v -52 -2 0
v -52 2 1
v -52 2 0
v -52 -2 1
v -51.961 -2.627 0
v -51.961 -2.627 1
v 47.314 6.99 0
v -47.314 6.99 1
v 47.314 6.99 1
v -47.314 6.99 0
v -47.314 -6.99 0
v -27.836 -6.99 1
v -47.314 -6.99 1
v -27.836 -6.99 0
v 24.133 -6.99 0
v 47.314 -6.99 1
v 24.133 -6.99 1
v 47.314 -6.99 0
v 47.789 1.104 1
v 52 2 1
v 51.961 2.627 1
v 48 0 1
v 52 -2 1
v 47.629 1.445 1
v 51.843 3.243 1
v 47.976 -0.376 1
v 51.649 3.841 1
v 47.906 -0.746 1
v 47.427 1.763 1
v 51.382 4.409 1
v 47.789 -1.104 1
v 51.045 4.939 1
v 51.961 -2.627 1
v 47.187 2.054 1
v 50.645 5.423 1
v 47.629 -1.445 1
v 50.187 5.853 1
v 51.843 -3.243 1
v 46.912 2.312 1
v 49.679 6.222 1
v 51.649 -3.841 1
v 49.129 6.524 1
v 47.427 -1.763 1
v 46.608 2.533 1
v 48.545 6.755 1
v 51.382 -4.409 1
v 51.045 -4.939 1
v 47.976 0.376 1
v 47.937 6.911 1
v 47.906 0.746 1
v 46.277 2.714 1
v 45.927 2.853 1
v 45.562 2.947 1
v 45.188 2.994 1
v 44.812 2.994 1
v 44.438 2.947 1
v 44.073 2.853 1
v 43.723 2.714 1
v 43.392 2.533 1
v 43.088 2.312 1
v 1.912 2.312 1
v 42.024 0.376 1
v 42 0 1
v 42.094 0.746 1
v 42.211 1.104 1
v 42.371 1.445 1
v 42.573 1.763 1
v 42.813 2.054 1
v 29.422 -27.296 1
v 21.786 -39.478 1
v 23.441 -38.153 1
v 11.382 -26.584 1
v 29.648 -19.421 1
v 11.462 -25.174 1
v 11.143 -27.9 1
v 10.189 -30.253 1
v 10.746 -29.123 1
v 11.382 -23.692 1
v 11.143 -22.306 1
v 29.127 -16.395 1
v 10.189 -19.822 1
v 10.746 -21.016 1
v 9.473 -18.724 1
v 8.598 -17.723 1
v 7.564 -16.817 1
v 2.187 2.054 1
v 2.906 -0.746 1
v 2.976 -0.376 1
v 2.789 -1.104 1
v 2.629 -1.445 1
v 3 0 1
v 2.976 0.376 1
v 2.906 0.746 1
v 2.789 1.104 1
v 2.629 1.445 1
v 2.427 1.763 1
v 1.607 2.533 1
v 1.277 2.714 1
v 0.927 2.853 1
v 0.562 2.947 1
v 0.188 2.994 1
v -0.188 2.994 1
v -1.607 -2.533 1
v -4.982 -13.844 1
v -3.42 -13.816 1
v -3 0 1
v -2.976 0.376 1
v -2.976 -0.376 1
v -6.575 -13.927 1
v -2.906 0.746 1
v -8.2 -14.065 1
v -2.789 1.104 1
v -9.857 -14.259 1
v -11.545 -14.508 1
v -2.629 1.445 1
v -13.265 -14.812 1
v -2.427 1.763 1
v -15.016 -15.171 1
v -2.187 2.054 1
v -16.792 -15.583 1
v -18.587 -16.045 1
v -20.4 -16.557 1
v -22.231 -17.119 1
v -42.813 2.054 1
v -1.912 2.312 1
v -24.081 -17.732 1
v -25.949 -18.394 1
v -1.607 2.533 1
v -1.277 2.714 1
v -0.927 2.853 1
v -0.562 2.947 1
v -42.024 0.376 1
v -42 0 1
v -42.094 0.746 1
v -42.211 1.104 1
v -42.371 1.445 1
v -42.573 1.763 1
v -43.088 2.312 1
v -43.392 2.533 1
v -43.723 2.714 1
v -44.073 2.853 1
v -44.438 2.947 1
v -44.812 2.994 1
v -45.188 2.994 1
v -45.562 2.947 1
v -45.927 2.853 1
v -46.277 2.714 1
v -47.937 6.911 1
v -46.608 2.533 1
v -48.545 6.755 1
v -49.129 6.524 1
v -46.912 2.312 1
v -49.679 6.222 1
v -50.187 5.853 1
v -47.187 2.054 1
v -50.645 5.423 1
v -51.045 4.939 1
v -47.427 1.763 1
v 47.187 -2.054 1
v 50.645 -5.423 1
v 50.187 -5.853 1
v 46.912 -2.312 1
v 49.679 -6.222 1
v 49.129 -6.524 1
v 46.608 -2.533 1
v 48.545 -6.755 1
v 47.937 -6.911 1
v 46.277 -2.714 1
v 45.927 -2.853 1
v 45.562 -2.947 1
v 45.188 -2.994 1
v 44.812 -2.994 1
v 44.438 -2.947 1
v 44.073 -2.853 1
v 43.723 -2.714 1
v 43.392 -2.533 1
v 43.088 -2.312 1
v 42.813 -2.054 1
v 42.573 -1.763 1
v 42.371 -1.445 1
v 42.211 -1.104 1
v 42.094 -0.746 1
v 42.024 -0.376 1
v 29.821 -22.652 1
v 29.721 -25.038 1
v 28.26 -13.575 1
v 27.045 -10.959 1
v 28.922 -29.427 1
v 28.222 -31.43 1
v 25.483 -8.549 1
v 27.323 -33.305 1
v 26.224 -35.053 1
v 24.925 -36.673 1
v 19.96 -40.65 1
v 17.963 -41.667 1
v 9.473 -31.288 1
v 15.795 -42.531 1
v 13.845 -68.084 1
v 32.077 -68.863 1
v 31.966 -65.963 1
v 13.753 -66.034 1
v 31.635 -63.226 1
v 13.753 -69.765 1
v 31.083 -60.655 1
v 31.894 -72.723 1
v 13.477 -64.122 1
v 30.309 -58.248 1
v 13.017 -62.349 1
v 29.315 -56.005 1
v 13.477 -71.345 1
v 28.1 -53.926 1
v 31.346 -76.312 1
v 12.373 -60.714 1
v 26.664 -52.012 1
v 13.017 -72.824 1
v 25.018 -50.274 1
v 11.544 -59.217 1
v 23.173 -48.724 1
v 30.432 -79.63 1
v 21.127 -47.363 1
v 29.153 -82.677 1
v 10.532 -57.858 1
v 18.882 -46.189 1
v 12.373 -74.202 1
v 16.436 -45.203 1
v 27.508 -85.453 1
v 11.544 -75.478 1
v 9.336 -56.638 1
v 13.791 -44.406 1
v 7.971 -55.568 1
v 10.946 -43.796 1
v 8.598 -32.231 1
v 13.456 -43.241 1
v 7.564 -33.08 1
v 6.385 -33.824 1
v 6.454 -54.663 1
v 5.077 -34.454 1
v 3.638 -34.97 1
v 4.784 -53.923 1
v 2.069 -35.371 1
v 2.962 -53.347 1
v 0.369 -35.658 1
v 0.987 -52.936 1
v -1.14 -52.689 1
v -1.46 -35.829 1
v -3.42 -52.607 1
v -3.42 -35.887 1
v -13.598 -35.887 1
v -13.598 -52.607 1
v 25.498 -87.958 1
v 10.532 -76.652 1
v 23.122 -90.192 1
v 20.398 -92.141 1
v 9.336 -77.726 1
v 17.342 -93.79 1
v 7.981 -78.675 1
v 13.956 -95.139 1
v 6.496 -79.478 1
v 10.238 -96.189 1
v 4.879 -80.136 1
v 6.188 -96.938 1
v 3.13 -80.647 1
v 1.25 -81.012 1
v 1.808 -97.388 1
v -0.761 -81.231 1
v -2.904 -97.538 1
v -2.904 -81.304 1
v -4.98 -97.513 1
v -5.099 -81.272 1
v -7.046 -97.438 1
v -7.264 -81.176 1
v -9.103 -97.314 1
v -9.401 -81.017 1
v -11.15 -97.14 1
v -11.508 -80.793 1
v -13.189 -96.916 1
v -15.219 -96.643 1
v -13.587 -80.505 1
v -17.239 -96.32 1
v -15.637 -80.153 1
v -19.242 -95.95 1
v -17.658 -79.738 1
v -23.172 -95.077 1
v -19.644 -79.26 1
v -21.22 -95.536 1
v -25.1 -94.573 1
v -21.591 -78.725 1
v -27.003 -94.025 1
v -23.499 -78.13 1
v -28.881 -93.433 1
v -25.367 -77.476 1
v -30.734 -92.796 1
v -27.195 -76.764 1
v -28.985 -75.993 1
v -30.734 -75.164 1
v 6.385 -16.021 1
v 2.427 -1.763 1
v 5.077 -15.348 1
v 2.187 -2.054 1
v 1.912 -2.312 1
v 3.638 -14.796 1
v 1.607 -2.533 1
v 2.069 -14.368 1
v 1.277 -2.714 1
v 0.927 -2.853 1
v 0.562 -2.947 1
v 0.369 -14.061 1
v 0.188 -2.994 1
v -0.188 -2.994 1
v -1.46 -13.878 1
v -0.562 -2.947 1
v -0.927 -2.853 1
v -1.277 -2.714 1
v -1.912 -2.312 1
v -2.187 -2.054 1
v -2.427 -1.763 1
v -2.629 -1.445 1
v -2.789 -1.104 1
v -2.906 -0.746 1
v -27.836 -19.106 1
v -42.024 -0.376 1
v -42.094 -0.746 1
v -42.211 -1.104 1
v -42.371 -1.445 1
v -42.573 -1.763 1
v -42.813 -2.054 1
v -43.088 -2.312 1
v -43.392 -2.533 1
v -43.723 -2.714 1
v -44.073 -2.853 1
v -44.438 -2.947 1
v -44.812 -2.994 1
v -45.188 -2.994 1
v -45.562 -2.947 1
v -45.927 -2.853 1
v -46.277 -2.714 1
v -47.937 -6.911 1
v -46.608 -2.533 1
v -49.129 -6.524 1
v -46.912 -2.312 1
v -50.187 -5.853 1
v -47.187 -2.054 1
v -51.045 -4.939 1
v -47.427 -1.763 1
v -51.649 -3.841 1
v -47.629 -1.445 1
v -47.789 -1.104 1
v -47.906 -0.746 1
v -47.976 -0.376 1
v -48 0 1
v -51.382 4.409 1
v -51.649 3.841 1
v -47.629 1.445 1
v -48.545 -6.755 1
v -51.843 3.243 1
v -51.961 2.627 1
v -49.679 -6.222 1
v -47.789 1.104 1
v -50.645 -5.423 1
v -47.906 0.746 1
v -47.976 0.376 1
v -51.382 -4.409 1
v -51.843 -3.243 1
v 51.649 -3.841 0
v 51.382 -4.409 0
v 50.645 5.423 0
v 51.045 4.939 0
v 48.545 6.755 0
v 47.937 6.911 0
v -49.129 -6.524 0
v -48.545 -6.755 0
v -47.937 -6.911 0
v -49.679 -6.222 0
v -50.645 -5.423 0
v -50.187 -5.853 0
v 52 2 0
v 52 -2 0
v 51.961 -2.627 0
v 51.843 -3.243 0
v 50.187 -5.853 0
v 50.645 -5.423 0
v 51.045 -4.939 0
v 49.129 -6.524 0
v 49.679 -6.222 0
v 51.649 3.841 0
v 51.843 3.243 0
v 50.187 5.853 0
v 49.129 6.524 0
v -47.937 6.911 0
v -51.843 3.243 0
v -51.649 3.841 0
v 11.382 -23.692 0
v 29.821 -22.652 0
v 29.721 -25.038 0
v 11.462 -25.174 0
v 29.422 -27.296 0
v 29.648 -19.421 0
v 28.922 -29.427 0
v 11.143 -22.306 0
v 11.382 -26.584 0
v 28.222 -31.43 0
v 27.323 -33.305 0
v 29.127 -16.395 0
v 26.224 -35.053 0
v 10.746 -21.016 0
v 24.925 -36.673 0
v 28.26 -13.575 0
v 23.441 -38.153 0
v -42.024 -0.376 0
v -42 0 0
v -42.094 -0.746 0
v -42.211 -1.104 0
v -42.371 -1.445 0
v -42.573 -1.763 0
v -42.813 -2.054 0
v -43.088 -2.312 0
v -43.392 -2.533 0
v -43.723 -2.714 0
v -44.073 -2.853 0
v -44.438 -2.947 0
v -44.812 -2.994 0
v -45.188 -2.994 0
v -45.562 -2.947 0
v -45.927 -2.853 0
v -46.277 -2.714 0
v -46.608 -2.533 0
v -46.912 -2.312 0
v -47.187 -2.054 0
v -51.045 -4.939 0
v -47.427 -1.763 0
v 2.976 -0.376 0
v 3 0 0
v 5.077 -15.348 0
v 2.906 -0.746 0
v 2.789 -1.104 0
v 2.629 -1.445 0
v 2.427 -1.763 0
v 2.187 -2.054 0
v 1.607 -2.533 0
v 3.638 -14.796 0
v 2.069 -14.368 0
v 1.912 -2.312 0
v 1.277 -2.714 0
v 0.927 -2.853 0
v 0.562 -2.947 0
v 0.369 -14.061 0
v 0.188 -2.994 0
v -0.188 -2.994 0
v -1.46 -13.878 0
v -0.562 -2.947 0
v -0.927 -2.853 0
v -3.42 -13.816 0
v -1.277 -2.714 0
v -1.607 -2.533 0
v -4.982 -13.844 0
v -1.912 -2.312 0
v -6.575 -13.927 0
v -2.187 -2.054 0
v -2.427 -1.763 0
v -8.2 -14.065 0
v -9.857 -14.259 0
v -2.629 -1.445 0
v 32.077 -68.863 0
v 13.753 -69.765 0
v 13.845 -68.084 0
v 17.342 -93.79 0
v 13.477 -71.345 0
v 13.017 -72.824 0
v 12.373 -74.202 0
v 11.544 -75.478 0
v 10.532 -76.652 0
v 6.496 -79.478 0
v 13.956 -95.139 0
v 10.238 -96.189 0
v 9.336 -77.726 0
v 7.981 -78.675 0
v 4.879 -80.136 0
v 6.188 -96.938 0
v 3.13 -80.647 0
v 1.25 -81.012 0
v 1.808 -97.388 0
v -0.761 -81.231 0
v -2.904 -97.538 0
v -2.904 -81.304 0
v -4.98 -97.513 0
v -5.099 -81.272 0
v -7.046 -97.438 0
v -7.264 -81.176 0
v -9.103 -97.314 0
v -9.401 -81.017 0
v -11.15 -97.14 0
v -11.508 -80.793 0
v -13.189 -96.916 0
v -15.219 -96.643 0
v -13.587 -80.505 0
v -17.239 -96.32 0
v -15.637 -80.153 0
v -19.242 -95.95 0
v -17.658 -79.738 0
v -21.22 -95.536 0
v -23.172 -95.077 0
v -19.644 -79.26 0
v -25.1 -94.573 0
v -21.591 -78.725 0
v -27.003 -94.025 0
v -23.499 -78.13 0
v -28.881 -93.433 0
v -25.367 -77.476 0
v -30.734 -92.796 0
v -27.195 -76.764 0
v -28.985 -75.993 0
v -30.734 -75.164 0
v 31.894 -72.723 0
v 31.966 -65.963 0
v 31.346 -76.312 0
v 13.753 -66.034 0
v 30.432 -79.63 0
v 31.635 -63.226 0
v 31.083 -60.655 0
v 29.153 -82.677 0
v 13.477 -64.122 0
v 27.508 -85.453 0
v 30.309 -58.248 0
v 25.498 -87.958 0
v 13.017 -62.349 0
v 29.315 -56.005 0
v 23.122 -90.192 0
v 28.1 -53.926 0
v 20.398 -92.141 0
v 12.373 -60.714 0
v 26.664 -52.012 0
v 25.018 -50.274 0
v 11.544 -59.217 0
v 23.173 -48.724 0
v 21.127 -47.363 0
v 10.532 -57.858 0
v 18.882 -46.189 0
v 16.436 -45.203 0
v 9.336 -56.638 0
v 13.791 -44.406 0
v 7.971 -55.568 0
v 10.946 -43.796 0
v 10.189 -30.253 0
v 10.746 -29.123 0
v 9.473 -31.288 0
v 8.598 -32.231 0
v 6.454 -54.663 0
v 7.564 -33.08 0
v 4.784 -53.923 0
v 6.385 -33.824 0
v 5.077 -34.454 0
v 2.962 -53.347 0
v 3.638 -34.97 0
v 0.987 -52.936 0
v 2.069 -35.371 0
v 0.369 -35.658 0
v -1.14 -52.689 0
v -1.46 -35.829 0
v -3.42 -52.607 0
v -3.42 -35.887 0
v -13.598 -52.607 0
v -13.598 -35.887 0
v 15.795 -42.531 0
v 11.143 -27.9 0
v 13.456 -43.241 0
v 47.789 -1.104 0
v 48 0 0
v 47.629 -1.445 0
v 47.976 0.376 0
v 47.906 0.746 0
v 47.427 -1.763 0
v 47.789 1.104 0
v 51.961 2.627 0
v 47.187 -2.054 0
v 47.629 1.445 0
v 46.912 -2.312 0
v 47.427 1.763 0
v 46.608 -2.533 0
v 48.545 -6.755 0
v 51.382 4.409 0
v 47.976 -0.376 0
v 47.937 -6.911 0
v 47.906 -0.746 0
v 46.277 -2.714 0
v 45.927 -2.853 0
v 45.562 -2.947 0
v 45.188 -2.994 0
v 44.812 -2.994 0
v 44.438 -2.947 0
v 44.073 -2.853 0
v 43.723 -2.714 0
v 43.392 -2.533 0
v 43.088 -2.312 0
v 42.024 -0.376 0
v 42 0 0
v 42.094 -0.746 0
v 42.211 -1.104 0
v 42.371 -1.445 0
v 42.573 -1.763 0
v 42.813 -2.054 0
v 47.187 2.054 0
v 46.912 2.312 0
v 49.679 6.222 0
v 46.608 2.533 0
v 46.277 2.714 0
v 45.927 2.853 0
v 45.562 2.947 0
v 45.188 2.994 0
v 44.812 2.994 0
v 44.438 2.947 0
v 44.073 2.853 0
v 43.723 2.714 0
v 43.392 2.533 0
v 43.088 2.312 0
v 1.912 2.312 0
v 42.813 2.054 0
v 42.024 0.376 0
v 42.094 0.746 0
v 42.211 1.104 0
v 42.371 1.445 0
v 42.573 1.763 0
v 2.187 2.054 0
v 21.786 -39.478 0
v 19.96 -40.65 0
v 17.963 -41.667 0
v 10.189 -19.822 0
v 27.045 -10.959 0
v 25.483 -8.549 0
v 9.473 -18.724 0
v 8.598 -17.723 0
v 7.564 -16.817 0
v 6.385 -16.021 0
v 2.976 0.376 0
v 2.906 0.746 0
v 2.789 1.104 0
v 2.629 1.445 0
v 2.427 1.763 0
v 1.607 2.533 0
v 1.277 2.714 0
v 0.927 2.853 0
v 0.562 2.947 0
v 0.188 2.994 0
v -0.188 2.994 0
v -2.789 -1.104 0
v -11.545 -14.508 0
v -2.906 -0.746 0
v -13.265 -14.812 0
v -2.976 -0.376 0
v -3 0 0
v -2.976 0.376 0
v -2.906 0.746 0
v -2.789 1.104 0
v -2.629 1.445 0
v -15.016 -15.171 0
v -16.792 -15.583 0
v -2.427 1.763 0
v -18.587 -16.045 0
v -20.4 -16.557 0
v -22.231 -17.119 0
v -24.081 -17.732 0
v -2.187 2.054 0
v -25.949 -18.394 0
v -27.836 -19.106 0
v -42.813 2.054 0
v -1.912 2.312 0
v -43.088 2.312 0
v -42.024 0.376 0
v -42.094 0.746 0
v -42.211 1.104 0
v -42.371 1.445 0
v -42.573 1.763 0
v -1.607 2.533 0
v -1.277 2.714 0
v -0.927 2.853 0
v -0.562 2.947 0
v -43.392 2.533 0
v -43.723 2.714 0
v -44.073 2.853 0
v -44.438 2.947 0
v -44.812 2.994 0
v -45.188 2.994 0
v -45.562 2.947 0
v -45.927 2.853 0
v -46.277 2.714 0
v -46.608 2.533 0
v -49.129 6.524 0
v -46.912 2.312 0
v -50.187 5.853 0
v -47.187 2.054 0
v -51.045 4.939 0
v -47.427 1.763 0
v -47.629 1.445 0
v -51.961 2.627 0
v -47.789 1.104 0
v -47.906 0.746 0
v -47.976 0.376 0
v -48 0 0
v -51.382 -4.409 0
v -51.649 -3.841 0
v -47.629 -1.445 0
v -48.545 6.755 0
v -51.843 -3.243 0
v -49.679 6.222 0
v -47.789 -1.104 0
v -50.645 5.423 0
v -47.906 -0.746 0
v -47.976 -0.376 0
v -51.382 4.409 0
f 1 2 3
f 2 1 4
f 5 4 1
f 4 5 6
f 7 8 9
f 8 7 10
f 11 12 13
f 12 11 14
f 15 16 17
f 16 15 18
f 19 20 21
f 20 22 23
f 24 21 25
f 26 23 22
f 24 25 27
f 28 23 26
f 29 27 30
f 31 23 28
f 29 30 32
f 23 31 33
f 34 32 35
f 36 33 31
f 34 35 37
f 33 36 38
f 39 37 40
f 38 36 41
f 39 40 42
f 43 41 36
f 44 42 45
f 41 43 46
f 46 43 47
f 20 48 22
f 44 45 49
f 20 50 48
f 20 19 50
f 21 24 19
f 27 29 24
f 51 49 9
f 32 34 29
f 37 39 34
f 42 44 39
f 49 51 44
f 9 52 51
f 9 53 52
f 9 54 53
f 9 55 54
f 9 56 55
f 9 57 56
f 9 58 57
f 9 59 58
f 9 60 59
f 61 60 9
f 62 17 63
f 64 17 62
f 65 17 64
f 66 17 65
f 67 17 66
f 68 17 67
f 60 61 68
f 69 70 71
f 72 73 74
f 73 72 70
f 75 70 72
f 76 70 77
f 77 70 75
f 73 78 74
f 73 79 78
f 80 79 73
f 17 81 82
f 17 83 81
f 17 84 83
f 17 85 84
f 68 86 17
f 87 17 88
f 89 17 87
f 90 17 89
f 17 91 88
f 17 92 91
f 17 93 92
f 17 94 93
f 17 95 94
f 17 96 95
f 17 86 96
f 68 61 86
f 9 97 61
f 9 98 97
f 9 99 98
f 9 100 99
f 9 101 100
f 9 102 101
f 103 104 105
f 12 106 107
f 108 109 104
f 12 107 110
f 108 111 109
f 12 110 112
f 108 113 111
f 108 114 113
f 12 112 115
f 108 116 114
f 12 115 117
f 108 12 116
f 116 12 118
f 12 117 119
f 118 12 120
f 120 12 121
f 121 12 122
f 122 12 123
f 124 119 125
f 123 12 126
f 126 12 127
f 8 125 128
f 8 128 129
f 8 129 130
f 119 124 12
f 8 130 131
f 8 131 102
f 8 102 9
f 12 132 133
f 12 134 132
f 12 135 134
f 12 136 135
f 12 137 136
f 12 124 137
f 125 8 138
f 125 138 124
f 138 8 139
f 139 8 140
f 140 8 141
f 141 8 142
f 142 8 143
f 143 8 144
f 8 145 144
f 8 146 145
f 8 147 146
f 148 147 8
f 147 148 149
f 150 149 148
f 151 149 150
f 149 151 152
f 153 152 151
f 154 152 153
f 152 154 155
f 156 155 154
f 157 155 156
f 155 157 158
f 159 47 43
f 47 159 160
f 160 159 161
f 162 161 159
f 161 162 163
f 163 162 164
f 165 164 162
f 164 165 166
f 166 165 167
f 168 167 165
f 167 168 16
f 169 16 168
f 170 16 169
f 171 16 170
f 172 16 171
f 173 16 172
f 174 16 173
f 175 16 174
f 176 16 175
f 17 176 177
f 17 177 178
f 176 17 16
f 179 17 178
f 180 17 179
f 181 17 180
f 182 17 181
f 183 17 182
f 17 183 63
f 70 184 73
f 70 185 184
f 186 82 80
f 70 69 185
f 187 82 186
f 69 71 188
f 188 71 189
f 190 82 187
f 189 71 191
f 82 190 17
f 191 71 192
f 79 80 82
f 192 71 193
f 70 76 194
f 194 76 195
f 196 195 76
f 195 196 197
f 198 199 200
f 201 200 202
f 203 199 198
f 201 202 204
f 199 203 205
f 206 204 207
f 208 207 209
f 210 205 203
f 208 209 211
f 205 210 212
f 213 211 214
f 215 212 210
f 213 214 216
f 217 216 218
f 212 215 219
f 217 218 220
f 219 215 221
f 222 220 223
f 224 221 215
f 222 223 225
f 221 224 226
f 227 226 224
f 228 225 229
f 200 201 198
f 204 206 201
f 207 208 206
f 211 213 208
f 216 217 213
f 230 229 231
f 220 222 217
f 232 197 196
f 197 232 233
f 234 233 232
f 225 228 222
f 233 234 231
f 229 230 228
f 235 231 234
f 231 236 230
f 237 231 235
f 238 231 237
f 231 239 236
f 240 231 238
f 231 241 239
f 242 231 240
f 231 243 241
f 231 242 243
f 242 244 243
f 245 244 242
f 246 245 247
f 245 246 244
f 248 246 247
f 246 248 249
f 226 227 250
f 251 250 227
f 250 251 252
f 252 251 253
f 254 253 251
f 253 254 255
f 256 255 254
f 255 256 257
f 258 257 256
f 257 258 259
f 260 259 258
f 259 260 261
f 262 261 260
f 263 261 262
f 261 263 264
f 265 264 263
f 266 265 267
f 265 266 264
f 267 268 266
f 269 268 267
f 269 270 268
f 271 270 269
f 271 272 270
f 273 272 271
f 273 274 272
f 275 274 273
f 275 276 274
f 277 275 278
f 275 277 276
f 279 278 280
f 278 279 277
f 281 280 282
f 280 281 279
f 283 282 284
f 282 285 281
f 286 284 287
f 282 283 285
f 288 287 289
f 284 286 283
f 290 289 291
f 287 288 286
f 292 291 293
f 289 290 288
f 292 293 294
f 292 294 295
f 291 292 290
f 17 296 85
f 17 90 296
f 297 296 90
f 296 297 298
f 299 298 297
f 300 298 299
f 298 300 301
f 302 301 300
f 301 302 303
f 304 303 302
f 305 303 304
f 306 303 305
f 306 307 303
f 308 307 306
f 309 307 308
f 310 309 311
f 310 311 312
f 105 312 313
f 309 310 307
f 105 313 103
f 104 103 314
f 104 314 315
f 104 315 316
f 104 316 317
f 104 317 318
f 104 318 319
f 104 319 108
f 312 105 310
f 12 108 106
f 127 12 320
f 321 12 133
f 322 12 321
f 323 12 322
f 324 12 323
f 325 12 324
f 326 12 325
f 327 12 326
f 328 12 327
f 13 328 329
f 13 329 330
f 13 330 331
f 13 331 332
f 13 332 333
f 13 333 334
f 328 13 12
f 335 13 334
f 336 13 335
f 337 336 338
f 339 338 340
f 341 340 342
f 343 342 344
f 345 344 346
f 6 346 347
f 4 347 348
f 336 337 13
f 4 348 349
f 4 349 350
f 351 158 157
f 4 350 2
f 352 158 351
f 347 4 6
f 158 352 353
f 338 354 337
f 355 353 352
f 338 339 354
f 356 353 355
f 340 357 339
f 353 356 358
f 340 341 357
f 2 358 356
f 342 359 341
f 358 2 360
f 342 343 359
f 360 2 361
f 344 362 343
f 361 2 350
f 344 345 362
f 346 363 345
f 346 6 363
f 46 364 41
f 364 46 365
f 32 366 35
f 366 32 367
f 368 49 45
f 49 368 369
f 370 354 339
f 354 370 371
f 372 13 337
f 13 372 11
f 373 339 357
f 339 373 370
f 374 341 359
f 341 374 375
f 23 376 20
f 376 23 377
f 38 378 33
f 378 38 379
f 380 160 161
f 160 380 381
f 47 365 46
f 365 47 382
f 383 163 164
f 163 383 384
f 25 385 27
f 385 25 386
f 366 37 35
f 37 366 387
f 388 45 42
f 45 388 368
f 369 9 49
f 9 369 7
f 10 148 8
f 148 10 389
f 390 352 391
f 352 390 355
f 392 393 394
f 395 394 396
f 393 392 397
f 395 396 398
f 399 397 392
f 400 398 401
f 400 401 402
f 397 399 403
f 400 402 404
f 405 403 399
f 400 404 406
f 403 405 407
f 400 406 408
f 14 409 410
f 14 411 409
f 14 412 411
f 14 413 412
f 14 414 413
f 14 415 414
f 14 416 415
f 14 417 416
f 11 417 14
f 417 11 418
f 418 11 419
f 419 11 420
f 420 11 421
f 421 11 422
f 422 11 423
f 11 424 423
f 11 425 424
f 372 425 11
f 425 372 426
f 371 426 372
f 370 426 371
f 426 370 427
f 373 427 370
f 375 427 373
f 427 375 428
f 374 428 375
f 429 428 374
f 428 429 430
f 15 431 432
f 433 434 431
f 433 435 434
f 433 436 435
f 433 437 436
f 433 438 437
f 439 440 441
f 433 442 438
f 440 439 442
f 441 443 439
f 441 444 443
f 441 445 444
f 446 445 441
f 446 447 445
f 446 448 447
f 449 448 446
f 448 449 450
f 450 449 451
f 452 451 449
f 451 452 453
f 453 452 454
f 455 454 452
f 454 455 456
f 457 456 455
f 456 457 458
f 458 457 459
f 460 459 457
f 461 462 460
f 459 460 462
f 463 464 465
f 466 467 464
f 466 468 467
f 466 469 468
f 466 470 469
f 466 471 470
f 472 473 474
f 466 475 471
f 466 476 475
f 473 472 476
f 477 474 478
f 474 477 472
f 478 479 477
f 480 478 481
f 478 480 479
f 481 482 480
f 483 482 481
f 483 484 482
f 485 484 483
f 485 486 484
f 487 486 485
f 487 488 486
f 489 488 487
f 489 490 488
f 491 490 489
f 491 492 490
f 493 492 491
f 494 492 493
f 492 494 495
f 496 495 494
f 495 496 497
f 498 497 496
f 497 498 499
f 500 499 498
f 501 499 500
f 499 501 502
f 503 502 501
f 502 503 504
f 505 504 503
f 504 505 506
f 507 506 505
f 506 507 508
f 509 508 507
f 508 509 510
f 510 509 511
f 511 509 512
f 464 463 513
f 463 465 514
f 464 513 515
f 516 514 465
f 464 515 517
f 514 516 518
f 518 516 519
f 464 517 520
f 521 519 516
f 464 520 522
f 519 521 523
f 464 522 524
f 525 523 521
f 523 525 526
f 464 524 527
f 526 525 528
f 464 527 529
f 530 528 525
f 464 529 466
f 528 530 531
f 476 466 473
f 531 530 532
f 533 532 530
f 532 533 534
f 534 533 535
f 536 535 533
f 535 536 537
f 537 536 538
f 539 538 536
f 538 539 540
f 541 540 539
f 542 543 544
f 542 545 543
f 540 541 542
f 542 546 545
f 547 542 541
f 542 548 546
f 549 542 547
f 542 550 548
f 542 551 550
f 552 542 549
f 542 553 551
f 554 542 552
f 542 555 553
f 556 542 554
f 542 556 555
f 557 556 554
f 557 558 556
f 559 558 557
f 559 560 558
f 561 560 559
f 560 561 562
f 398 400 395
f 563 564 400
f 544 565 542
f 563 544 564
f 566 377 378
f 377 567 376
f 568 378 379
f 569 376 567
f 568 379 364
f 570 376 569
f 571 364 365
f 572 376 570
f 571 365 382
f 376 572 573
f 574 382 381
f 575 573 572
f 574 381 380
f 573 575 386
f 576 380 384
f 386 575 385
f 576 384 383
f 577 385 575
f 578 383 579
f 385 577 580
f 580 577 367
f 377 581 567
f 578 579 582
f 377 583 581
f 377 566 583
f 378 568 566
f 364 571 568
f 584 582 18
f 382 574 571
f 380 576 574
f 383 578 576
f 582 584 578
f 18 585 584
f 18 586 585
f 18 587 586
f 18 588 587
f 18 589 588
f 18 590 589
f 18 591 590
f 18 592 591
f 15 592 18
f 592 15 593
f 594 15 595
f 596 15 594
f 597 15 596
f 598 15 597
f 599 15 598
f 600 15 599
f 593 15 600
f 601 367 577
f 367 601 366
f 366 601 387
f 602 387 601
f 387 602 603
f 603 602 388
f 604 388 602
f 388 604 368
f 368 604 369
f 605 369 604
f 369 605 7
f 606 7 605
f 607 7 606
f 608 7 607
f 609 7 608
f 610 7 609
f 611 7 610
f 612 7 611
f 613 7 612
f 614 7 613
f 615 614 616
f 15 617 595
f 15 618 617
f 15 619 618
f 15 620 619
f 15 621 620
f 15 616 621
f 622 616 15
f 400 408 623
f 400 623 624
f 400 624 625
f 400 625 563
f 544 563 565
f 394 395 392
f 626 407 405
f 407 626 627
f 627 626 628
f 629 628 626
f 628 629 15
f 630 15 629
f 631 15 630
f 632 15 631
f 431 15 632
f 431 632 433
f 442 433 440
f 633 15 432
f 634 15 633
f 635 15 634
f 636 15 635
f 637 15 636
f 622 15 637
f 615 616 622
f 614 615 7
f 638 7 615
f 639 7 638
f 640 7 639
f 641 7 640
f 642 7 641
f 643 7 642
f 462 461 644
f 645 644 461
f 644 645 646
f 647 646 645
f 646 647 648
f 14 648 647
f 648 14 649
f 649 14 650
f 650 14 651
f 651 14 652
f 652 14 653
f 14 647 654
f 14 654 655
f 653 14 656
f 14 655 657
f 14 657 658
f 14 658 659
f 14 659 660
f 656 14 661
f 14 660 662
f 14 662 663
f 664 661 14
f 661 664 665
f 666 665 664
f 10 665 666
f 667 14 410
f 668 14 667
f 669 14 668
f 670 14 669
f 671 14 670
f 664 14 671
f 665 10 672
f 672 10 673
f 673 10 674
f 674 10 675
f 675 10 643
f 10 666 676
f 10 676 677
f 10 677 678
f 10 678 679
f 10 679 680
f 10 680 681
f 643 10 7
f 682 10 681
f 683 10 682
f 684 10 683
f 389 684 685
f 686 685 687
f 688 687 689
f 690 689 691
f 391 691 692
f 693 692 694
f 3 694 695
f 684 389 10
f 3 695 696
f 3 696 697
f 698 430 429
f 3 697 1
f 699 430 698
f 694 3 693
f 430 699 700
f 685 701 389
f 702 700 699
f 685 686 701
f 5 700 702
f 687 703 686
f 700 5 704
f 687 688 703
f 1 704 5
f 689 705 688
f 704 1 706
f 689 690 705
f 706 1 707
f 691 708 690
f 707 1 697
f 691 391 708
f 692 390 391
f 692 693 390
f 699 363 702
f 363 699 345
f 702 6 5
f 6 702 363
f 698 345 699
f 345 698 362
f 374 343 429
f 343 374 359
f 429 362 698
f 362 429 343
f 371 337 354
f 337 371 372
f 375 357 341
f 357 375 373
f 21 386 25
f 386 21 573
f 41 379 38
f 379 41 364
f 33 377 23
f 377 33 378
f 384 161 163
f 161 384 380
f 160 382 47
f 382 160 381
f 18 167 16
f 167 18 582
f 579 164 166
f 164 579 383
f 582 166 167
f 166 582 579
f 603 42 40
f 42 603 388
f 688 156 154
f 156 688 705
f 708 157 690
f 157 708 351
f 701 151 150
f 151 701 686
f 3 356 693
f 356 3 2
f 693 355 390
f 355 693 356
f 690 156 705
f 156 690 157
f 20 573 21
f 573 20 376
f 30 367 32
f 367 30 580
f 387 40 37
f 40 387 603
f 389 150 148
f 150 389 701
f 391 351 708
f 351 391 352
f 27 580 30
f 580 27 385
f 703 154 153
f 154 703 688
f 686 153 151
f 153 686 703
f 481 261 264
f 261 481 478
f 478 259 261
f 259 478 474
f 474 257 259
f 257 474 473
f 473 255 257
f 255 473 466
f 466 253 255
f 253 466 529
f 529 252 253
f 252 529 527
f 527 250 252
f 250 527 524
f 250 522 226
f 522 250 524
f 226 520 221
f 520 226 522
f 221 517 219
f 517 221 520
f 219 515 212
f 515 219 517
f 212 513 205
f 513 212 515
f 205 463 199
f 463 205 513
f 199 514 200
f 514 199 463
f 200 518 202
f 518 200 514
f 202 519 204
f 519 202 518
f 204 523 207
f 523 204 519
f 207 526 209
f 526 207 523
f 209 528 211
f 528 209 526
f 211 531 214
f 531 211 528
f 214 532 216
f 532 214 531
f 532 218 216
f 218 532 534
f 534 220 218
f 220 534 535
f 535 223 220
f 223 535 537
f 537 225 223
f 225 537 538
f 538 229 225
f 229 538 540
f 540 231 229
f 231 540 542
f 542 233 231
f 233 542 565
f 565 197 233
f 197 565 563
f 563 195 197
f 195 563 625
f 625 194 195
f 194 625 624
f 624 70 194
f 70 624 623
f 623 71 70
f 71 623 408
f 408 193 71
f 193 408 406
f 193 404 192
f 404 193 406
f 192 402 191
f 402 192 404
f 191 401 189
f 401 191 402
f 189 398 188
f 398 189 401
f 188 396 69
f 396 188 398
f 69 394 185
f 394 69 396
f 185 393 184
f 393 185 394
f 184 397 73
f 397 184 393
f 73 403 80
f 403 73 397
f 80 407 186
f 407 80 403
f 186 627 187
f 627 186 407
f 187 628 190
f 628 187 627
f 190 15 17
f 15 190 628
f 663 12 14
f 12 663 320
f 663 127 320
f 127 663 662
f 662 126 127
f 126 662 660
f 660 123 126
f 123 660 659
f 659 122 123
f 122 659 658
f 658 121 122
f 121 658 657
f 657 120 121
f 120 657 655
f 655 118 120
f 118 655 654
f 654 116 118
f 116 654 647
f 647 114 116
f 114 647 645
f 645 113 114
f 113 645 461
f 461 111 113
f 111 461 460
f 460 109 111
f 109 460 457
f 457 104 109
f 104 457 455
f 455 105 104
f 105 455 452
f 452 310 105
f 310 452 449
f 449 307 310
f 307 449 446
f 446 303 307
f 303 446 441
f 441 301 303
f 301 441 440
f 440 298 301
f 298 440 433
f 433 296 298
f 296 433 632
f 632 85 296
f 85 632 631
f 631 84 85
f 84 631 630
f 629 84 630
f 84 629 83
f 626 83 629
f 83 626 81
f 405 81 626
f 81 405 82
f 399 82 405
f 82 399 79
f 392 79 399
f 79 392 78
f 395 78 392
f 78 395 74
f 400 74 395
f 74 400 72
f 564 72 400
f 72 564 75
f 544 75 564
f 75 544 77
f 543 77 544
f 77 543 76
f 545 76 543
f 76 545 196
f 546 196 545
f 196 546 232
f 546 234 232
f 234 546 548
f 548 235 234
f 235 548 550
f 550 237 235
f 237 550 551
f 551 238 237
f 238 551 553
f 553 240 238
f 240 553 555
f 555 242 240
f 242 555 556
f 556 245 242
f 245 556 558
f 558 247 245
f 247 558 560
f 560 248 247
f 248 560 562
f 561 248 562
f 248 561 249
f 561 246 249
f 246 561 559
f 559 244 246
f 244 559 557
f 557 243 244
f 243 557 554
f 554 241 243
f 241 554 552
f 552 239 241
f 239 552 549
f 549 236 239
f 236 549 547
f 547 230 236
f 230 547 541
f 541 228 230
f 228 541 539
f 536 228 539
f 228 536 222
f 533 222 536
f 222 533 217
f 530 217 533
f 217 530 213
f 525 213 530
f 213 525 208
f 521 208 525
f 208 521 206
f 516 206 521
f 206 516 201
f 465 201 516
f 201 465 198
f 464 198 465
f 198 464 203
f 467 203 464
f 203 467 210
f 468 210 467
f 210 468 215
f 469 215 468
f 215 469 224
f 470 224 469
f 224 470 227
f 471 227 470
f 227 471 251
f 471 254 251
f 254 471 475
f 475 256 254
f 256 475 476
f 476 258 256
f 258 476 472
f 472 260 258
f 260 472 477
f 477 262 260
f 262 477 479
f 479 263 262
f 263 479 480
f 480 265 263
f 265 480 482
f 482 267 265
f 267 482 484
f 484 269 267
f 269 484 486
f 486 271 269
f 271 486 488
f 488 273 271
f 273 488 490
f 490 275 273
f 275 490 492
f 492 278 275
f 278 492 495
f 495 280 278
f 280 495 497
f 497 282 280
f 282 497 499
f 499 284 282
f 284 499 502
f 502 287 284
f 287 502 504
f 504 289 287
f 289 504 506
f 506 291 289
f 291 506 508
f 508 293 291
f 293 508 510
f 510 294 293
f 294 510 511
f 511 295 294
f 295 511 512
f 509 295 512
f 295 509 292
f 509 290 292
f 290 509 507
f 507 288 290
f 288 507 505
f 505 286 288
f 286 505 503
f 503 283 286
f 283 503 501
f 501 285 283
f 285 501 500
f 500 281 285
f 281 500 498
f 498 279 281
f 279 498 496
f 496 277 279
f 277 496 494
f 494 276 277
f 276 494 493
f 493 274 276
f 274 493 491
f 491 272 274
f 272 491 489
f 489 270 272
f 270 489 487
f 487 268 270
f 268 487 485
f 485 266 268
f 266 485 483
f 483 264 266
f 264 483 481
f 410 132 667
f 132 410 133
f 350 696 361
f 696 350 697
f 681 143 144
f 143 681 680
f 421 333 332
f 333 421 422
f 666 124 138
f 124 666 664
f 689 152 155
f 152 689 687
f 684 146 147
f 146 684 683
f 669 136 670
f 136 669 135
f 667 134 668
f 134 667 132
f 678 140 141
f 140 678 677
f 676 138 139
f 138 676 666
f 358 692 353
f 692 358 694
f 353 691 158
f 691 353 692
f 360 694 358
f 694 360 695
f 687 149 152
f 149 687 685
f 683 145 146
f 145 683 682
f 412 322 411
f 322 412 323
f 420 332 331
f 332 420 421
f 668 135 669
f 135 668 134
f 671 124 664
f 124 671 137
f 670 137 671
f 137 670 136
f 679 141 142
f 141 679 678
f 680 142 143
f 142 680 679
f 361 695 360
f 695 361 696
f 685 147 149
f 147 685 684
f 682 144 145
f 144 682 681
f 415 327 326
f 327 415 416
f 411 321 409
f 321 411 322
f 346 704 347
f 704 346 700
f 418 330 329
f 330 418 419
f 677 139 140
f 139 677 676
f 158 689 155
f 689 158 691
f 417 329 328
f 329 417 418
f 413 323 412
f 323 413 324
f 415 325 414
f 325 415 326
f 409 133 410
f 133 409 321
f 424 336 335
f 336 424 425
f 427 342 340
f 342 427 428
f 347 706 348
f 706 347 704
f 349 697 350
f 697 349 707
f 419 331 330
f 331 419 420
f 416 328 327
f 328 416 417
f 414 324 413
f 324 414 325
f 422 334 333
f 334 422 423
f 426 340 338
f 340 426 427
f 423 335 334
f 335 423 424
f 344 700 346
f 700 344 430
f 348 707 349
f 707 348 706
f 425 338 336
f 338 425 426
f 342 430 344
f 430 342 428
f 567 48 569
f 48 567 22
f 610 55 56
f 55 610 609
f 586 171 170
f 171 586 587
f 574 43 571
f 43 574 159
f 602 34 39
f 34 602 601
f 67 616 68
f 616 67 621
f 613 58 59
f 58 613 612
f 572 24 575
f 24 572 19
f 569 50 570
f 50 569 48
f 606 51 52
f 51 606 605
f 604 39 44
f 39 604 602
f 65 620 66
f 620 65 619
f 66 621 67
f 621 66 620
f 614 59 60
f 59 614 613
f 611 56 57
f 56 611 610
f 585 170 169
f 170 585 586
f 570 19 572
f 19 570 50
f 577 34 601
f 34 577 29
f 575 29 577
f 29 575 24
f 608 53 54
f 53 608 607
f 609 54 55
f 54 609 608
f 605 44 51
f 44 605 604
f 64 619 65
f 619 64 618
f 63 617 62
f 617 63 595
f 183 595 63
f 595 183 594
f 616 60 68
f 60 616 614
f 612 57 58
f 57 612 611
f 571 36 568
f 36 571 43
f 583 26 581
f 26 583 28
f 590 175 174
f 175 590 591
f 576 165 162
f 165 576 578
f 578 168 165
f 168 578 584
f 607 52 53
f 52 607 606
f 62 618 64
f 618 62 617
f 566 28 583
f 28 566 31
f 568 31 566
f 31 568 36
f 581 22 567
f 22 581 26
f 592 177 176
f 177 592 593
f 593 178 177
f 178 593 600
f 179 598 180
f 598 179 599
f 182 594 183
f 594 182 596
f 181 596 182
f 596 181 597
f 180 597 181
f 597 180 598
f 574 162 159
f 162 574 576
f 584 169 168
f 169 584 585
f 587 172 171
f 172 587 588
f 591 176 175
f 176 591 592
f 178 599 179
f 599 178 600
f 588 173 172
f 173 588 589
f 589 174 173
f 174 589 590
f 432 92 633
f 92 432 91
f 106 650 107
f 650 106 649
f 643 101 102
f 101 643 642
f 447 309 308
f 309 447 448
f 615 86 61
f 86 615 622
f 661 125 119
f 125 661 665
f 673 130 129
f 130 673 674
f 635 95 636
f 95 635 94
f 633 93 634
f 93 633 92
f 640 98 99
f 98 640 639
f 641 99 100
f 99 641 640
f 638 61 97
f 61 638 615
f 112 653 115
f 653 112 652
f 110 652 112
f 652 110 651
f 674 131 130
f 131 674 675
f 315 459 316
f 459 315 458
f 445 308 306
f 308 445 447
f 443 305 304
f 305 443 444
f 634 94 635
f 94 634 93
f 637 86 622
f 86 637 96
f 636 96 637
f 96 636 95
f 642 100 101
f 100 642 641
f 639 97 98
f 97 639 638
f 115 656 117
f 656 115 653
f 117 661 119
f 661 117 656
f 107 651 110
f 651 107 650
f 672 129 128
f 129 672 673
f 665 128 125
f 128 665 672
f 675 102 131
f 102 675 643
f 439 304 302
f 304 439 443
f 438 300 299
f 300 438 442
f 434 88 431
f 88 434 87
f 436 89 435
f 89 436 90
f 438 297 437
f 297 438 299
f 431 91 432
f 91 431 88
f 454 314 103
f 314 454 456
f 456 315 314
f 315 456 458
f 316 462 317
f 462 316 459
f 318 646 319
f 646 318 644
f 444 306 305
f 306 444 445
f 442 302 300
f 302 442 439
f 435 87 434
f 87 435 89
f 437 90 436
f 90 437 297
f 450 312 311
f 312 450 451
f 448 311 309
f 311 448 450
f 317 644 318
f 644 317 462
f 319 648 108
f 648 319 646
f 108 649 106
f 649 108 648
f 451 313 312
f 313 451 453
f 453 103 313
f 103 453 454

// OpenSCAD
$fn = 50;


difference() {
	union() {
		translate(v = [0, 0, 0]) {
			rotate(a = [0, 0, 0]) {
				hull() {
					translate(v = [-47.0000000000, 2.0000000000, 0]) {
						rotate(a = [0, 0, 0]) {
							translate(v = [0, 0, 0]) {
								rotate(a = [0, 0, 0]) {
									cylinder(h = 1, r = 5);
								}
							}
						}
					}
					translate(v = [47.0000000000, 2.0000000000, 0]) {
						rotate(a = [0, 0, 0]) {
							translate(v = [0, 0, 0]) {
								rotate(a = [0, 0, 0]) {
									cylinder(h = 1, r = 5);
								}
							}
						}
					}
					translate(v = [-47.0000000000, -2.0000000000, 0]) {
						rotate(a = [0, 0, 0]) {
							translate(v = [0, 0, 0]) {
								rotate(a = [0, 0, 0]) {
									cylinder(h = 1, r = 5);
								}
							}
						}
					}
					translate(v = [47.0000000000, -2.0000000000, 0]) {
						rotate(a = [0, 0, 0]) {
							translate(v = [0, 0, 0]) {
								rotate(a = [0, 0, 0]) {
									cylinder(h = 1, r = 5);
								}
							}
						}
					}
				}
			}
		}
		translate(v = [0, 0, 0]) {
			rotate(a = [0, 0, 0]) {
				linear_extrude(height = 1) {
					text(font = "DejaVu Sans Mono:style=Bold", halign = "center", size = 95.0000000000, text = "3", valign = "top");
				}
			}
		}
	}
	union() {
		translate(v = [-45.0000000000, 0.0000000000, -125.0000000000]) {
			rotate(a = [0, 0, 0]) {
				cylinder(h = 250, r = 3.0000000000);
			}
		}
		translate(v = [45.0000000000, 0.0000000000, -125.0000000000]) {
			rotate(a = [0, 0, 0]) {
				cylinder(h = 250, r = 3.0000000000);
			}
		}
		translate(v = [45.0000000000, 0.0000000000, -125.0000000000]) {
			rotate(a = [0, 0, 0]) {
				cylinder(h = 250, r = 3.0000000000);
			}
		}
		translate(v = [0, 0, -125.0000000000]) {
			rotate(a = [0, 0, 0]) {
				cylinder(h = 250, r = 3.0000000000);
			}
		}
	}
}
